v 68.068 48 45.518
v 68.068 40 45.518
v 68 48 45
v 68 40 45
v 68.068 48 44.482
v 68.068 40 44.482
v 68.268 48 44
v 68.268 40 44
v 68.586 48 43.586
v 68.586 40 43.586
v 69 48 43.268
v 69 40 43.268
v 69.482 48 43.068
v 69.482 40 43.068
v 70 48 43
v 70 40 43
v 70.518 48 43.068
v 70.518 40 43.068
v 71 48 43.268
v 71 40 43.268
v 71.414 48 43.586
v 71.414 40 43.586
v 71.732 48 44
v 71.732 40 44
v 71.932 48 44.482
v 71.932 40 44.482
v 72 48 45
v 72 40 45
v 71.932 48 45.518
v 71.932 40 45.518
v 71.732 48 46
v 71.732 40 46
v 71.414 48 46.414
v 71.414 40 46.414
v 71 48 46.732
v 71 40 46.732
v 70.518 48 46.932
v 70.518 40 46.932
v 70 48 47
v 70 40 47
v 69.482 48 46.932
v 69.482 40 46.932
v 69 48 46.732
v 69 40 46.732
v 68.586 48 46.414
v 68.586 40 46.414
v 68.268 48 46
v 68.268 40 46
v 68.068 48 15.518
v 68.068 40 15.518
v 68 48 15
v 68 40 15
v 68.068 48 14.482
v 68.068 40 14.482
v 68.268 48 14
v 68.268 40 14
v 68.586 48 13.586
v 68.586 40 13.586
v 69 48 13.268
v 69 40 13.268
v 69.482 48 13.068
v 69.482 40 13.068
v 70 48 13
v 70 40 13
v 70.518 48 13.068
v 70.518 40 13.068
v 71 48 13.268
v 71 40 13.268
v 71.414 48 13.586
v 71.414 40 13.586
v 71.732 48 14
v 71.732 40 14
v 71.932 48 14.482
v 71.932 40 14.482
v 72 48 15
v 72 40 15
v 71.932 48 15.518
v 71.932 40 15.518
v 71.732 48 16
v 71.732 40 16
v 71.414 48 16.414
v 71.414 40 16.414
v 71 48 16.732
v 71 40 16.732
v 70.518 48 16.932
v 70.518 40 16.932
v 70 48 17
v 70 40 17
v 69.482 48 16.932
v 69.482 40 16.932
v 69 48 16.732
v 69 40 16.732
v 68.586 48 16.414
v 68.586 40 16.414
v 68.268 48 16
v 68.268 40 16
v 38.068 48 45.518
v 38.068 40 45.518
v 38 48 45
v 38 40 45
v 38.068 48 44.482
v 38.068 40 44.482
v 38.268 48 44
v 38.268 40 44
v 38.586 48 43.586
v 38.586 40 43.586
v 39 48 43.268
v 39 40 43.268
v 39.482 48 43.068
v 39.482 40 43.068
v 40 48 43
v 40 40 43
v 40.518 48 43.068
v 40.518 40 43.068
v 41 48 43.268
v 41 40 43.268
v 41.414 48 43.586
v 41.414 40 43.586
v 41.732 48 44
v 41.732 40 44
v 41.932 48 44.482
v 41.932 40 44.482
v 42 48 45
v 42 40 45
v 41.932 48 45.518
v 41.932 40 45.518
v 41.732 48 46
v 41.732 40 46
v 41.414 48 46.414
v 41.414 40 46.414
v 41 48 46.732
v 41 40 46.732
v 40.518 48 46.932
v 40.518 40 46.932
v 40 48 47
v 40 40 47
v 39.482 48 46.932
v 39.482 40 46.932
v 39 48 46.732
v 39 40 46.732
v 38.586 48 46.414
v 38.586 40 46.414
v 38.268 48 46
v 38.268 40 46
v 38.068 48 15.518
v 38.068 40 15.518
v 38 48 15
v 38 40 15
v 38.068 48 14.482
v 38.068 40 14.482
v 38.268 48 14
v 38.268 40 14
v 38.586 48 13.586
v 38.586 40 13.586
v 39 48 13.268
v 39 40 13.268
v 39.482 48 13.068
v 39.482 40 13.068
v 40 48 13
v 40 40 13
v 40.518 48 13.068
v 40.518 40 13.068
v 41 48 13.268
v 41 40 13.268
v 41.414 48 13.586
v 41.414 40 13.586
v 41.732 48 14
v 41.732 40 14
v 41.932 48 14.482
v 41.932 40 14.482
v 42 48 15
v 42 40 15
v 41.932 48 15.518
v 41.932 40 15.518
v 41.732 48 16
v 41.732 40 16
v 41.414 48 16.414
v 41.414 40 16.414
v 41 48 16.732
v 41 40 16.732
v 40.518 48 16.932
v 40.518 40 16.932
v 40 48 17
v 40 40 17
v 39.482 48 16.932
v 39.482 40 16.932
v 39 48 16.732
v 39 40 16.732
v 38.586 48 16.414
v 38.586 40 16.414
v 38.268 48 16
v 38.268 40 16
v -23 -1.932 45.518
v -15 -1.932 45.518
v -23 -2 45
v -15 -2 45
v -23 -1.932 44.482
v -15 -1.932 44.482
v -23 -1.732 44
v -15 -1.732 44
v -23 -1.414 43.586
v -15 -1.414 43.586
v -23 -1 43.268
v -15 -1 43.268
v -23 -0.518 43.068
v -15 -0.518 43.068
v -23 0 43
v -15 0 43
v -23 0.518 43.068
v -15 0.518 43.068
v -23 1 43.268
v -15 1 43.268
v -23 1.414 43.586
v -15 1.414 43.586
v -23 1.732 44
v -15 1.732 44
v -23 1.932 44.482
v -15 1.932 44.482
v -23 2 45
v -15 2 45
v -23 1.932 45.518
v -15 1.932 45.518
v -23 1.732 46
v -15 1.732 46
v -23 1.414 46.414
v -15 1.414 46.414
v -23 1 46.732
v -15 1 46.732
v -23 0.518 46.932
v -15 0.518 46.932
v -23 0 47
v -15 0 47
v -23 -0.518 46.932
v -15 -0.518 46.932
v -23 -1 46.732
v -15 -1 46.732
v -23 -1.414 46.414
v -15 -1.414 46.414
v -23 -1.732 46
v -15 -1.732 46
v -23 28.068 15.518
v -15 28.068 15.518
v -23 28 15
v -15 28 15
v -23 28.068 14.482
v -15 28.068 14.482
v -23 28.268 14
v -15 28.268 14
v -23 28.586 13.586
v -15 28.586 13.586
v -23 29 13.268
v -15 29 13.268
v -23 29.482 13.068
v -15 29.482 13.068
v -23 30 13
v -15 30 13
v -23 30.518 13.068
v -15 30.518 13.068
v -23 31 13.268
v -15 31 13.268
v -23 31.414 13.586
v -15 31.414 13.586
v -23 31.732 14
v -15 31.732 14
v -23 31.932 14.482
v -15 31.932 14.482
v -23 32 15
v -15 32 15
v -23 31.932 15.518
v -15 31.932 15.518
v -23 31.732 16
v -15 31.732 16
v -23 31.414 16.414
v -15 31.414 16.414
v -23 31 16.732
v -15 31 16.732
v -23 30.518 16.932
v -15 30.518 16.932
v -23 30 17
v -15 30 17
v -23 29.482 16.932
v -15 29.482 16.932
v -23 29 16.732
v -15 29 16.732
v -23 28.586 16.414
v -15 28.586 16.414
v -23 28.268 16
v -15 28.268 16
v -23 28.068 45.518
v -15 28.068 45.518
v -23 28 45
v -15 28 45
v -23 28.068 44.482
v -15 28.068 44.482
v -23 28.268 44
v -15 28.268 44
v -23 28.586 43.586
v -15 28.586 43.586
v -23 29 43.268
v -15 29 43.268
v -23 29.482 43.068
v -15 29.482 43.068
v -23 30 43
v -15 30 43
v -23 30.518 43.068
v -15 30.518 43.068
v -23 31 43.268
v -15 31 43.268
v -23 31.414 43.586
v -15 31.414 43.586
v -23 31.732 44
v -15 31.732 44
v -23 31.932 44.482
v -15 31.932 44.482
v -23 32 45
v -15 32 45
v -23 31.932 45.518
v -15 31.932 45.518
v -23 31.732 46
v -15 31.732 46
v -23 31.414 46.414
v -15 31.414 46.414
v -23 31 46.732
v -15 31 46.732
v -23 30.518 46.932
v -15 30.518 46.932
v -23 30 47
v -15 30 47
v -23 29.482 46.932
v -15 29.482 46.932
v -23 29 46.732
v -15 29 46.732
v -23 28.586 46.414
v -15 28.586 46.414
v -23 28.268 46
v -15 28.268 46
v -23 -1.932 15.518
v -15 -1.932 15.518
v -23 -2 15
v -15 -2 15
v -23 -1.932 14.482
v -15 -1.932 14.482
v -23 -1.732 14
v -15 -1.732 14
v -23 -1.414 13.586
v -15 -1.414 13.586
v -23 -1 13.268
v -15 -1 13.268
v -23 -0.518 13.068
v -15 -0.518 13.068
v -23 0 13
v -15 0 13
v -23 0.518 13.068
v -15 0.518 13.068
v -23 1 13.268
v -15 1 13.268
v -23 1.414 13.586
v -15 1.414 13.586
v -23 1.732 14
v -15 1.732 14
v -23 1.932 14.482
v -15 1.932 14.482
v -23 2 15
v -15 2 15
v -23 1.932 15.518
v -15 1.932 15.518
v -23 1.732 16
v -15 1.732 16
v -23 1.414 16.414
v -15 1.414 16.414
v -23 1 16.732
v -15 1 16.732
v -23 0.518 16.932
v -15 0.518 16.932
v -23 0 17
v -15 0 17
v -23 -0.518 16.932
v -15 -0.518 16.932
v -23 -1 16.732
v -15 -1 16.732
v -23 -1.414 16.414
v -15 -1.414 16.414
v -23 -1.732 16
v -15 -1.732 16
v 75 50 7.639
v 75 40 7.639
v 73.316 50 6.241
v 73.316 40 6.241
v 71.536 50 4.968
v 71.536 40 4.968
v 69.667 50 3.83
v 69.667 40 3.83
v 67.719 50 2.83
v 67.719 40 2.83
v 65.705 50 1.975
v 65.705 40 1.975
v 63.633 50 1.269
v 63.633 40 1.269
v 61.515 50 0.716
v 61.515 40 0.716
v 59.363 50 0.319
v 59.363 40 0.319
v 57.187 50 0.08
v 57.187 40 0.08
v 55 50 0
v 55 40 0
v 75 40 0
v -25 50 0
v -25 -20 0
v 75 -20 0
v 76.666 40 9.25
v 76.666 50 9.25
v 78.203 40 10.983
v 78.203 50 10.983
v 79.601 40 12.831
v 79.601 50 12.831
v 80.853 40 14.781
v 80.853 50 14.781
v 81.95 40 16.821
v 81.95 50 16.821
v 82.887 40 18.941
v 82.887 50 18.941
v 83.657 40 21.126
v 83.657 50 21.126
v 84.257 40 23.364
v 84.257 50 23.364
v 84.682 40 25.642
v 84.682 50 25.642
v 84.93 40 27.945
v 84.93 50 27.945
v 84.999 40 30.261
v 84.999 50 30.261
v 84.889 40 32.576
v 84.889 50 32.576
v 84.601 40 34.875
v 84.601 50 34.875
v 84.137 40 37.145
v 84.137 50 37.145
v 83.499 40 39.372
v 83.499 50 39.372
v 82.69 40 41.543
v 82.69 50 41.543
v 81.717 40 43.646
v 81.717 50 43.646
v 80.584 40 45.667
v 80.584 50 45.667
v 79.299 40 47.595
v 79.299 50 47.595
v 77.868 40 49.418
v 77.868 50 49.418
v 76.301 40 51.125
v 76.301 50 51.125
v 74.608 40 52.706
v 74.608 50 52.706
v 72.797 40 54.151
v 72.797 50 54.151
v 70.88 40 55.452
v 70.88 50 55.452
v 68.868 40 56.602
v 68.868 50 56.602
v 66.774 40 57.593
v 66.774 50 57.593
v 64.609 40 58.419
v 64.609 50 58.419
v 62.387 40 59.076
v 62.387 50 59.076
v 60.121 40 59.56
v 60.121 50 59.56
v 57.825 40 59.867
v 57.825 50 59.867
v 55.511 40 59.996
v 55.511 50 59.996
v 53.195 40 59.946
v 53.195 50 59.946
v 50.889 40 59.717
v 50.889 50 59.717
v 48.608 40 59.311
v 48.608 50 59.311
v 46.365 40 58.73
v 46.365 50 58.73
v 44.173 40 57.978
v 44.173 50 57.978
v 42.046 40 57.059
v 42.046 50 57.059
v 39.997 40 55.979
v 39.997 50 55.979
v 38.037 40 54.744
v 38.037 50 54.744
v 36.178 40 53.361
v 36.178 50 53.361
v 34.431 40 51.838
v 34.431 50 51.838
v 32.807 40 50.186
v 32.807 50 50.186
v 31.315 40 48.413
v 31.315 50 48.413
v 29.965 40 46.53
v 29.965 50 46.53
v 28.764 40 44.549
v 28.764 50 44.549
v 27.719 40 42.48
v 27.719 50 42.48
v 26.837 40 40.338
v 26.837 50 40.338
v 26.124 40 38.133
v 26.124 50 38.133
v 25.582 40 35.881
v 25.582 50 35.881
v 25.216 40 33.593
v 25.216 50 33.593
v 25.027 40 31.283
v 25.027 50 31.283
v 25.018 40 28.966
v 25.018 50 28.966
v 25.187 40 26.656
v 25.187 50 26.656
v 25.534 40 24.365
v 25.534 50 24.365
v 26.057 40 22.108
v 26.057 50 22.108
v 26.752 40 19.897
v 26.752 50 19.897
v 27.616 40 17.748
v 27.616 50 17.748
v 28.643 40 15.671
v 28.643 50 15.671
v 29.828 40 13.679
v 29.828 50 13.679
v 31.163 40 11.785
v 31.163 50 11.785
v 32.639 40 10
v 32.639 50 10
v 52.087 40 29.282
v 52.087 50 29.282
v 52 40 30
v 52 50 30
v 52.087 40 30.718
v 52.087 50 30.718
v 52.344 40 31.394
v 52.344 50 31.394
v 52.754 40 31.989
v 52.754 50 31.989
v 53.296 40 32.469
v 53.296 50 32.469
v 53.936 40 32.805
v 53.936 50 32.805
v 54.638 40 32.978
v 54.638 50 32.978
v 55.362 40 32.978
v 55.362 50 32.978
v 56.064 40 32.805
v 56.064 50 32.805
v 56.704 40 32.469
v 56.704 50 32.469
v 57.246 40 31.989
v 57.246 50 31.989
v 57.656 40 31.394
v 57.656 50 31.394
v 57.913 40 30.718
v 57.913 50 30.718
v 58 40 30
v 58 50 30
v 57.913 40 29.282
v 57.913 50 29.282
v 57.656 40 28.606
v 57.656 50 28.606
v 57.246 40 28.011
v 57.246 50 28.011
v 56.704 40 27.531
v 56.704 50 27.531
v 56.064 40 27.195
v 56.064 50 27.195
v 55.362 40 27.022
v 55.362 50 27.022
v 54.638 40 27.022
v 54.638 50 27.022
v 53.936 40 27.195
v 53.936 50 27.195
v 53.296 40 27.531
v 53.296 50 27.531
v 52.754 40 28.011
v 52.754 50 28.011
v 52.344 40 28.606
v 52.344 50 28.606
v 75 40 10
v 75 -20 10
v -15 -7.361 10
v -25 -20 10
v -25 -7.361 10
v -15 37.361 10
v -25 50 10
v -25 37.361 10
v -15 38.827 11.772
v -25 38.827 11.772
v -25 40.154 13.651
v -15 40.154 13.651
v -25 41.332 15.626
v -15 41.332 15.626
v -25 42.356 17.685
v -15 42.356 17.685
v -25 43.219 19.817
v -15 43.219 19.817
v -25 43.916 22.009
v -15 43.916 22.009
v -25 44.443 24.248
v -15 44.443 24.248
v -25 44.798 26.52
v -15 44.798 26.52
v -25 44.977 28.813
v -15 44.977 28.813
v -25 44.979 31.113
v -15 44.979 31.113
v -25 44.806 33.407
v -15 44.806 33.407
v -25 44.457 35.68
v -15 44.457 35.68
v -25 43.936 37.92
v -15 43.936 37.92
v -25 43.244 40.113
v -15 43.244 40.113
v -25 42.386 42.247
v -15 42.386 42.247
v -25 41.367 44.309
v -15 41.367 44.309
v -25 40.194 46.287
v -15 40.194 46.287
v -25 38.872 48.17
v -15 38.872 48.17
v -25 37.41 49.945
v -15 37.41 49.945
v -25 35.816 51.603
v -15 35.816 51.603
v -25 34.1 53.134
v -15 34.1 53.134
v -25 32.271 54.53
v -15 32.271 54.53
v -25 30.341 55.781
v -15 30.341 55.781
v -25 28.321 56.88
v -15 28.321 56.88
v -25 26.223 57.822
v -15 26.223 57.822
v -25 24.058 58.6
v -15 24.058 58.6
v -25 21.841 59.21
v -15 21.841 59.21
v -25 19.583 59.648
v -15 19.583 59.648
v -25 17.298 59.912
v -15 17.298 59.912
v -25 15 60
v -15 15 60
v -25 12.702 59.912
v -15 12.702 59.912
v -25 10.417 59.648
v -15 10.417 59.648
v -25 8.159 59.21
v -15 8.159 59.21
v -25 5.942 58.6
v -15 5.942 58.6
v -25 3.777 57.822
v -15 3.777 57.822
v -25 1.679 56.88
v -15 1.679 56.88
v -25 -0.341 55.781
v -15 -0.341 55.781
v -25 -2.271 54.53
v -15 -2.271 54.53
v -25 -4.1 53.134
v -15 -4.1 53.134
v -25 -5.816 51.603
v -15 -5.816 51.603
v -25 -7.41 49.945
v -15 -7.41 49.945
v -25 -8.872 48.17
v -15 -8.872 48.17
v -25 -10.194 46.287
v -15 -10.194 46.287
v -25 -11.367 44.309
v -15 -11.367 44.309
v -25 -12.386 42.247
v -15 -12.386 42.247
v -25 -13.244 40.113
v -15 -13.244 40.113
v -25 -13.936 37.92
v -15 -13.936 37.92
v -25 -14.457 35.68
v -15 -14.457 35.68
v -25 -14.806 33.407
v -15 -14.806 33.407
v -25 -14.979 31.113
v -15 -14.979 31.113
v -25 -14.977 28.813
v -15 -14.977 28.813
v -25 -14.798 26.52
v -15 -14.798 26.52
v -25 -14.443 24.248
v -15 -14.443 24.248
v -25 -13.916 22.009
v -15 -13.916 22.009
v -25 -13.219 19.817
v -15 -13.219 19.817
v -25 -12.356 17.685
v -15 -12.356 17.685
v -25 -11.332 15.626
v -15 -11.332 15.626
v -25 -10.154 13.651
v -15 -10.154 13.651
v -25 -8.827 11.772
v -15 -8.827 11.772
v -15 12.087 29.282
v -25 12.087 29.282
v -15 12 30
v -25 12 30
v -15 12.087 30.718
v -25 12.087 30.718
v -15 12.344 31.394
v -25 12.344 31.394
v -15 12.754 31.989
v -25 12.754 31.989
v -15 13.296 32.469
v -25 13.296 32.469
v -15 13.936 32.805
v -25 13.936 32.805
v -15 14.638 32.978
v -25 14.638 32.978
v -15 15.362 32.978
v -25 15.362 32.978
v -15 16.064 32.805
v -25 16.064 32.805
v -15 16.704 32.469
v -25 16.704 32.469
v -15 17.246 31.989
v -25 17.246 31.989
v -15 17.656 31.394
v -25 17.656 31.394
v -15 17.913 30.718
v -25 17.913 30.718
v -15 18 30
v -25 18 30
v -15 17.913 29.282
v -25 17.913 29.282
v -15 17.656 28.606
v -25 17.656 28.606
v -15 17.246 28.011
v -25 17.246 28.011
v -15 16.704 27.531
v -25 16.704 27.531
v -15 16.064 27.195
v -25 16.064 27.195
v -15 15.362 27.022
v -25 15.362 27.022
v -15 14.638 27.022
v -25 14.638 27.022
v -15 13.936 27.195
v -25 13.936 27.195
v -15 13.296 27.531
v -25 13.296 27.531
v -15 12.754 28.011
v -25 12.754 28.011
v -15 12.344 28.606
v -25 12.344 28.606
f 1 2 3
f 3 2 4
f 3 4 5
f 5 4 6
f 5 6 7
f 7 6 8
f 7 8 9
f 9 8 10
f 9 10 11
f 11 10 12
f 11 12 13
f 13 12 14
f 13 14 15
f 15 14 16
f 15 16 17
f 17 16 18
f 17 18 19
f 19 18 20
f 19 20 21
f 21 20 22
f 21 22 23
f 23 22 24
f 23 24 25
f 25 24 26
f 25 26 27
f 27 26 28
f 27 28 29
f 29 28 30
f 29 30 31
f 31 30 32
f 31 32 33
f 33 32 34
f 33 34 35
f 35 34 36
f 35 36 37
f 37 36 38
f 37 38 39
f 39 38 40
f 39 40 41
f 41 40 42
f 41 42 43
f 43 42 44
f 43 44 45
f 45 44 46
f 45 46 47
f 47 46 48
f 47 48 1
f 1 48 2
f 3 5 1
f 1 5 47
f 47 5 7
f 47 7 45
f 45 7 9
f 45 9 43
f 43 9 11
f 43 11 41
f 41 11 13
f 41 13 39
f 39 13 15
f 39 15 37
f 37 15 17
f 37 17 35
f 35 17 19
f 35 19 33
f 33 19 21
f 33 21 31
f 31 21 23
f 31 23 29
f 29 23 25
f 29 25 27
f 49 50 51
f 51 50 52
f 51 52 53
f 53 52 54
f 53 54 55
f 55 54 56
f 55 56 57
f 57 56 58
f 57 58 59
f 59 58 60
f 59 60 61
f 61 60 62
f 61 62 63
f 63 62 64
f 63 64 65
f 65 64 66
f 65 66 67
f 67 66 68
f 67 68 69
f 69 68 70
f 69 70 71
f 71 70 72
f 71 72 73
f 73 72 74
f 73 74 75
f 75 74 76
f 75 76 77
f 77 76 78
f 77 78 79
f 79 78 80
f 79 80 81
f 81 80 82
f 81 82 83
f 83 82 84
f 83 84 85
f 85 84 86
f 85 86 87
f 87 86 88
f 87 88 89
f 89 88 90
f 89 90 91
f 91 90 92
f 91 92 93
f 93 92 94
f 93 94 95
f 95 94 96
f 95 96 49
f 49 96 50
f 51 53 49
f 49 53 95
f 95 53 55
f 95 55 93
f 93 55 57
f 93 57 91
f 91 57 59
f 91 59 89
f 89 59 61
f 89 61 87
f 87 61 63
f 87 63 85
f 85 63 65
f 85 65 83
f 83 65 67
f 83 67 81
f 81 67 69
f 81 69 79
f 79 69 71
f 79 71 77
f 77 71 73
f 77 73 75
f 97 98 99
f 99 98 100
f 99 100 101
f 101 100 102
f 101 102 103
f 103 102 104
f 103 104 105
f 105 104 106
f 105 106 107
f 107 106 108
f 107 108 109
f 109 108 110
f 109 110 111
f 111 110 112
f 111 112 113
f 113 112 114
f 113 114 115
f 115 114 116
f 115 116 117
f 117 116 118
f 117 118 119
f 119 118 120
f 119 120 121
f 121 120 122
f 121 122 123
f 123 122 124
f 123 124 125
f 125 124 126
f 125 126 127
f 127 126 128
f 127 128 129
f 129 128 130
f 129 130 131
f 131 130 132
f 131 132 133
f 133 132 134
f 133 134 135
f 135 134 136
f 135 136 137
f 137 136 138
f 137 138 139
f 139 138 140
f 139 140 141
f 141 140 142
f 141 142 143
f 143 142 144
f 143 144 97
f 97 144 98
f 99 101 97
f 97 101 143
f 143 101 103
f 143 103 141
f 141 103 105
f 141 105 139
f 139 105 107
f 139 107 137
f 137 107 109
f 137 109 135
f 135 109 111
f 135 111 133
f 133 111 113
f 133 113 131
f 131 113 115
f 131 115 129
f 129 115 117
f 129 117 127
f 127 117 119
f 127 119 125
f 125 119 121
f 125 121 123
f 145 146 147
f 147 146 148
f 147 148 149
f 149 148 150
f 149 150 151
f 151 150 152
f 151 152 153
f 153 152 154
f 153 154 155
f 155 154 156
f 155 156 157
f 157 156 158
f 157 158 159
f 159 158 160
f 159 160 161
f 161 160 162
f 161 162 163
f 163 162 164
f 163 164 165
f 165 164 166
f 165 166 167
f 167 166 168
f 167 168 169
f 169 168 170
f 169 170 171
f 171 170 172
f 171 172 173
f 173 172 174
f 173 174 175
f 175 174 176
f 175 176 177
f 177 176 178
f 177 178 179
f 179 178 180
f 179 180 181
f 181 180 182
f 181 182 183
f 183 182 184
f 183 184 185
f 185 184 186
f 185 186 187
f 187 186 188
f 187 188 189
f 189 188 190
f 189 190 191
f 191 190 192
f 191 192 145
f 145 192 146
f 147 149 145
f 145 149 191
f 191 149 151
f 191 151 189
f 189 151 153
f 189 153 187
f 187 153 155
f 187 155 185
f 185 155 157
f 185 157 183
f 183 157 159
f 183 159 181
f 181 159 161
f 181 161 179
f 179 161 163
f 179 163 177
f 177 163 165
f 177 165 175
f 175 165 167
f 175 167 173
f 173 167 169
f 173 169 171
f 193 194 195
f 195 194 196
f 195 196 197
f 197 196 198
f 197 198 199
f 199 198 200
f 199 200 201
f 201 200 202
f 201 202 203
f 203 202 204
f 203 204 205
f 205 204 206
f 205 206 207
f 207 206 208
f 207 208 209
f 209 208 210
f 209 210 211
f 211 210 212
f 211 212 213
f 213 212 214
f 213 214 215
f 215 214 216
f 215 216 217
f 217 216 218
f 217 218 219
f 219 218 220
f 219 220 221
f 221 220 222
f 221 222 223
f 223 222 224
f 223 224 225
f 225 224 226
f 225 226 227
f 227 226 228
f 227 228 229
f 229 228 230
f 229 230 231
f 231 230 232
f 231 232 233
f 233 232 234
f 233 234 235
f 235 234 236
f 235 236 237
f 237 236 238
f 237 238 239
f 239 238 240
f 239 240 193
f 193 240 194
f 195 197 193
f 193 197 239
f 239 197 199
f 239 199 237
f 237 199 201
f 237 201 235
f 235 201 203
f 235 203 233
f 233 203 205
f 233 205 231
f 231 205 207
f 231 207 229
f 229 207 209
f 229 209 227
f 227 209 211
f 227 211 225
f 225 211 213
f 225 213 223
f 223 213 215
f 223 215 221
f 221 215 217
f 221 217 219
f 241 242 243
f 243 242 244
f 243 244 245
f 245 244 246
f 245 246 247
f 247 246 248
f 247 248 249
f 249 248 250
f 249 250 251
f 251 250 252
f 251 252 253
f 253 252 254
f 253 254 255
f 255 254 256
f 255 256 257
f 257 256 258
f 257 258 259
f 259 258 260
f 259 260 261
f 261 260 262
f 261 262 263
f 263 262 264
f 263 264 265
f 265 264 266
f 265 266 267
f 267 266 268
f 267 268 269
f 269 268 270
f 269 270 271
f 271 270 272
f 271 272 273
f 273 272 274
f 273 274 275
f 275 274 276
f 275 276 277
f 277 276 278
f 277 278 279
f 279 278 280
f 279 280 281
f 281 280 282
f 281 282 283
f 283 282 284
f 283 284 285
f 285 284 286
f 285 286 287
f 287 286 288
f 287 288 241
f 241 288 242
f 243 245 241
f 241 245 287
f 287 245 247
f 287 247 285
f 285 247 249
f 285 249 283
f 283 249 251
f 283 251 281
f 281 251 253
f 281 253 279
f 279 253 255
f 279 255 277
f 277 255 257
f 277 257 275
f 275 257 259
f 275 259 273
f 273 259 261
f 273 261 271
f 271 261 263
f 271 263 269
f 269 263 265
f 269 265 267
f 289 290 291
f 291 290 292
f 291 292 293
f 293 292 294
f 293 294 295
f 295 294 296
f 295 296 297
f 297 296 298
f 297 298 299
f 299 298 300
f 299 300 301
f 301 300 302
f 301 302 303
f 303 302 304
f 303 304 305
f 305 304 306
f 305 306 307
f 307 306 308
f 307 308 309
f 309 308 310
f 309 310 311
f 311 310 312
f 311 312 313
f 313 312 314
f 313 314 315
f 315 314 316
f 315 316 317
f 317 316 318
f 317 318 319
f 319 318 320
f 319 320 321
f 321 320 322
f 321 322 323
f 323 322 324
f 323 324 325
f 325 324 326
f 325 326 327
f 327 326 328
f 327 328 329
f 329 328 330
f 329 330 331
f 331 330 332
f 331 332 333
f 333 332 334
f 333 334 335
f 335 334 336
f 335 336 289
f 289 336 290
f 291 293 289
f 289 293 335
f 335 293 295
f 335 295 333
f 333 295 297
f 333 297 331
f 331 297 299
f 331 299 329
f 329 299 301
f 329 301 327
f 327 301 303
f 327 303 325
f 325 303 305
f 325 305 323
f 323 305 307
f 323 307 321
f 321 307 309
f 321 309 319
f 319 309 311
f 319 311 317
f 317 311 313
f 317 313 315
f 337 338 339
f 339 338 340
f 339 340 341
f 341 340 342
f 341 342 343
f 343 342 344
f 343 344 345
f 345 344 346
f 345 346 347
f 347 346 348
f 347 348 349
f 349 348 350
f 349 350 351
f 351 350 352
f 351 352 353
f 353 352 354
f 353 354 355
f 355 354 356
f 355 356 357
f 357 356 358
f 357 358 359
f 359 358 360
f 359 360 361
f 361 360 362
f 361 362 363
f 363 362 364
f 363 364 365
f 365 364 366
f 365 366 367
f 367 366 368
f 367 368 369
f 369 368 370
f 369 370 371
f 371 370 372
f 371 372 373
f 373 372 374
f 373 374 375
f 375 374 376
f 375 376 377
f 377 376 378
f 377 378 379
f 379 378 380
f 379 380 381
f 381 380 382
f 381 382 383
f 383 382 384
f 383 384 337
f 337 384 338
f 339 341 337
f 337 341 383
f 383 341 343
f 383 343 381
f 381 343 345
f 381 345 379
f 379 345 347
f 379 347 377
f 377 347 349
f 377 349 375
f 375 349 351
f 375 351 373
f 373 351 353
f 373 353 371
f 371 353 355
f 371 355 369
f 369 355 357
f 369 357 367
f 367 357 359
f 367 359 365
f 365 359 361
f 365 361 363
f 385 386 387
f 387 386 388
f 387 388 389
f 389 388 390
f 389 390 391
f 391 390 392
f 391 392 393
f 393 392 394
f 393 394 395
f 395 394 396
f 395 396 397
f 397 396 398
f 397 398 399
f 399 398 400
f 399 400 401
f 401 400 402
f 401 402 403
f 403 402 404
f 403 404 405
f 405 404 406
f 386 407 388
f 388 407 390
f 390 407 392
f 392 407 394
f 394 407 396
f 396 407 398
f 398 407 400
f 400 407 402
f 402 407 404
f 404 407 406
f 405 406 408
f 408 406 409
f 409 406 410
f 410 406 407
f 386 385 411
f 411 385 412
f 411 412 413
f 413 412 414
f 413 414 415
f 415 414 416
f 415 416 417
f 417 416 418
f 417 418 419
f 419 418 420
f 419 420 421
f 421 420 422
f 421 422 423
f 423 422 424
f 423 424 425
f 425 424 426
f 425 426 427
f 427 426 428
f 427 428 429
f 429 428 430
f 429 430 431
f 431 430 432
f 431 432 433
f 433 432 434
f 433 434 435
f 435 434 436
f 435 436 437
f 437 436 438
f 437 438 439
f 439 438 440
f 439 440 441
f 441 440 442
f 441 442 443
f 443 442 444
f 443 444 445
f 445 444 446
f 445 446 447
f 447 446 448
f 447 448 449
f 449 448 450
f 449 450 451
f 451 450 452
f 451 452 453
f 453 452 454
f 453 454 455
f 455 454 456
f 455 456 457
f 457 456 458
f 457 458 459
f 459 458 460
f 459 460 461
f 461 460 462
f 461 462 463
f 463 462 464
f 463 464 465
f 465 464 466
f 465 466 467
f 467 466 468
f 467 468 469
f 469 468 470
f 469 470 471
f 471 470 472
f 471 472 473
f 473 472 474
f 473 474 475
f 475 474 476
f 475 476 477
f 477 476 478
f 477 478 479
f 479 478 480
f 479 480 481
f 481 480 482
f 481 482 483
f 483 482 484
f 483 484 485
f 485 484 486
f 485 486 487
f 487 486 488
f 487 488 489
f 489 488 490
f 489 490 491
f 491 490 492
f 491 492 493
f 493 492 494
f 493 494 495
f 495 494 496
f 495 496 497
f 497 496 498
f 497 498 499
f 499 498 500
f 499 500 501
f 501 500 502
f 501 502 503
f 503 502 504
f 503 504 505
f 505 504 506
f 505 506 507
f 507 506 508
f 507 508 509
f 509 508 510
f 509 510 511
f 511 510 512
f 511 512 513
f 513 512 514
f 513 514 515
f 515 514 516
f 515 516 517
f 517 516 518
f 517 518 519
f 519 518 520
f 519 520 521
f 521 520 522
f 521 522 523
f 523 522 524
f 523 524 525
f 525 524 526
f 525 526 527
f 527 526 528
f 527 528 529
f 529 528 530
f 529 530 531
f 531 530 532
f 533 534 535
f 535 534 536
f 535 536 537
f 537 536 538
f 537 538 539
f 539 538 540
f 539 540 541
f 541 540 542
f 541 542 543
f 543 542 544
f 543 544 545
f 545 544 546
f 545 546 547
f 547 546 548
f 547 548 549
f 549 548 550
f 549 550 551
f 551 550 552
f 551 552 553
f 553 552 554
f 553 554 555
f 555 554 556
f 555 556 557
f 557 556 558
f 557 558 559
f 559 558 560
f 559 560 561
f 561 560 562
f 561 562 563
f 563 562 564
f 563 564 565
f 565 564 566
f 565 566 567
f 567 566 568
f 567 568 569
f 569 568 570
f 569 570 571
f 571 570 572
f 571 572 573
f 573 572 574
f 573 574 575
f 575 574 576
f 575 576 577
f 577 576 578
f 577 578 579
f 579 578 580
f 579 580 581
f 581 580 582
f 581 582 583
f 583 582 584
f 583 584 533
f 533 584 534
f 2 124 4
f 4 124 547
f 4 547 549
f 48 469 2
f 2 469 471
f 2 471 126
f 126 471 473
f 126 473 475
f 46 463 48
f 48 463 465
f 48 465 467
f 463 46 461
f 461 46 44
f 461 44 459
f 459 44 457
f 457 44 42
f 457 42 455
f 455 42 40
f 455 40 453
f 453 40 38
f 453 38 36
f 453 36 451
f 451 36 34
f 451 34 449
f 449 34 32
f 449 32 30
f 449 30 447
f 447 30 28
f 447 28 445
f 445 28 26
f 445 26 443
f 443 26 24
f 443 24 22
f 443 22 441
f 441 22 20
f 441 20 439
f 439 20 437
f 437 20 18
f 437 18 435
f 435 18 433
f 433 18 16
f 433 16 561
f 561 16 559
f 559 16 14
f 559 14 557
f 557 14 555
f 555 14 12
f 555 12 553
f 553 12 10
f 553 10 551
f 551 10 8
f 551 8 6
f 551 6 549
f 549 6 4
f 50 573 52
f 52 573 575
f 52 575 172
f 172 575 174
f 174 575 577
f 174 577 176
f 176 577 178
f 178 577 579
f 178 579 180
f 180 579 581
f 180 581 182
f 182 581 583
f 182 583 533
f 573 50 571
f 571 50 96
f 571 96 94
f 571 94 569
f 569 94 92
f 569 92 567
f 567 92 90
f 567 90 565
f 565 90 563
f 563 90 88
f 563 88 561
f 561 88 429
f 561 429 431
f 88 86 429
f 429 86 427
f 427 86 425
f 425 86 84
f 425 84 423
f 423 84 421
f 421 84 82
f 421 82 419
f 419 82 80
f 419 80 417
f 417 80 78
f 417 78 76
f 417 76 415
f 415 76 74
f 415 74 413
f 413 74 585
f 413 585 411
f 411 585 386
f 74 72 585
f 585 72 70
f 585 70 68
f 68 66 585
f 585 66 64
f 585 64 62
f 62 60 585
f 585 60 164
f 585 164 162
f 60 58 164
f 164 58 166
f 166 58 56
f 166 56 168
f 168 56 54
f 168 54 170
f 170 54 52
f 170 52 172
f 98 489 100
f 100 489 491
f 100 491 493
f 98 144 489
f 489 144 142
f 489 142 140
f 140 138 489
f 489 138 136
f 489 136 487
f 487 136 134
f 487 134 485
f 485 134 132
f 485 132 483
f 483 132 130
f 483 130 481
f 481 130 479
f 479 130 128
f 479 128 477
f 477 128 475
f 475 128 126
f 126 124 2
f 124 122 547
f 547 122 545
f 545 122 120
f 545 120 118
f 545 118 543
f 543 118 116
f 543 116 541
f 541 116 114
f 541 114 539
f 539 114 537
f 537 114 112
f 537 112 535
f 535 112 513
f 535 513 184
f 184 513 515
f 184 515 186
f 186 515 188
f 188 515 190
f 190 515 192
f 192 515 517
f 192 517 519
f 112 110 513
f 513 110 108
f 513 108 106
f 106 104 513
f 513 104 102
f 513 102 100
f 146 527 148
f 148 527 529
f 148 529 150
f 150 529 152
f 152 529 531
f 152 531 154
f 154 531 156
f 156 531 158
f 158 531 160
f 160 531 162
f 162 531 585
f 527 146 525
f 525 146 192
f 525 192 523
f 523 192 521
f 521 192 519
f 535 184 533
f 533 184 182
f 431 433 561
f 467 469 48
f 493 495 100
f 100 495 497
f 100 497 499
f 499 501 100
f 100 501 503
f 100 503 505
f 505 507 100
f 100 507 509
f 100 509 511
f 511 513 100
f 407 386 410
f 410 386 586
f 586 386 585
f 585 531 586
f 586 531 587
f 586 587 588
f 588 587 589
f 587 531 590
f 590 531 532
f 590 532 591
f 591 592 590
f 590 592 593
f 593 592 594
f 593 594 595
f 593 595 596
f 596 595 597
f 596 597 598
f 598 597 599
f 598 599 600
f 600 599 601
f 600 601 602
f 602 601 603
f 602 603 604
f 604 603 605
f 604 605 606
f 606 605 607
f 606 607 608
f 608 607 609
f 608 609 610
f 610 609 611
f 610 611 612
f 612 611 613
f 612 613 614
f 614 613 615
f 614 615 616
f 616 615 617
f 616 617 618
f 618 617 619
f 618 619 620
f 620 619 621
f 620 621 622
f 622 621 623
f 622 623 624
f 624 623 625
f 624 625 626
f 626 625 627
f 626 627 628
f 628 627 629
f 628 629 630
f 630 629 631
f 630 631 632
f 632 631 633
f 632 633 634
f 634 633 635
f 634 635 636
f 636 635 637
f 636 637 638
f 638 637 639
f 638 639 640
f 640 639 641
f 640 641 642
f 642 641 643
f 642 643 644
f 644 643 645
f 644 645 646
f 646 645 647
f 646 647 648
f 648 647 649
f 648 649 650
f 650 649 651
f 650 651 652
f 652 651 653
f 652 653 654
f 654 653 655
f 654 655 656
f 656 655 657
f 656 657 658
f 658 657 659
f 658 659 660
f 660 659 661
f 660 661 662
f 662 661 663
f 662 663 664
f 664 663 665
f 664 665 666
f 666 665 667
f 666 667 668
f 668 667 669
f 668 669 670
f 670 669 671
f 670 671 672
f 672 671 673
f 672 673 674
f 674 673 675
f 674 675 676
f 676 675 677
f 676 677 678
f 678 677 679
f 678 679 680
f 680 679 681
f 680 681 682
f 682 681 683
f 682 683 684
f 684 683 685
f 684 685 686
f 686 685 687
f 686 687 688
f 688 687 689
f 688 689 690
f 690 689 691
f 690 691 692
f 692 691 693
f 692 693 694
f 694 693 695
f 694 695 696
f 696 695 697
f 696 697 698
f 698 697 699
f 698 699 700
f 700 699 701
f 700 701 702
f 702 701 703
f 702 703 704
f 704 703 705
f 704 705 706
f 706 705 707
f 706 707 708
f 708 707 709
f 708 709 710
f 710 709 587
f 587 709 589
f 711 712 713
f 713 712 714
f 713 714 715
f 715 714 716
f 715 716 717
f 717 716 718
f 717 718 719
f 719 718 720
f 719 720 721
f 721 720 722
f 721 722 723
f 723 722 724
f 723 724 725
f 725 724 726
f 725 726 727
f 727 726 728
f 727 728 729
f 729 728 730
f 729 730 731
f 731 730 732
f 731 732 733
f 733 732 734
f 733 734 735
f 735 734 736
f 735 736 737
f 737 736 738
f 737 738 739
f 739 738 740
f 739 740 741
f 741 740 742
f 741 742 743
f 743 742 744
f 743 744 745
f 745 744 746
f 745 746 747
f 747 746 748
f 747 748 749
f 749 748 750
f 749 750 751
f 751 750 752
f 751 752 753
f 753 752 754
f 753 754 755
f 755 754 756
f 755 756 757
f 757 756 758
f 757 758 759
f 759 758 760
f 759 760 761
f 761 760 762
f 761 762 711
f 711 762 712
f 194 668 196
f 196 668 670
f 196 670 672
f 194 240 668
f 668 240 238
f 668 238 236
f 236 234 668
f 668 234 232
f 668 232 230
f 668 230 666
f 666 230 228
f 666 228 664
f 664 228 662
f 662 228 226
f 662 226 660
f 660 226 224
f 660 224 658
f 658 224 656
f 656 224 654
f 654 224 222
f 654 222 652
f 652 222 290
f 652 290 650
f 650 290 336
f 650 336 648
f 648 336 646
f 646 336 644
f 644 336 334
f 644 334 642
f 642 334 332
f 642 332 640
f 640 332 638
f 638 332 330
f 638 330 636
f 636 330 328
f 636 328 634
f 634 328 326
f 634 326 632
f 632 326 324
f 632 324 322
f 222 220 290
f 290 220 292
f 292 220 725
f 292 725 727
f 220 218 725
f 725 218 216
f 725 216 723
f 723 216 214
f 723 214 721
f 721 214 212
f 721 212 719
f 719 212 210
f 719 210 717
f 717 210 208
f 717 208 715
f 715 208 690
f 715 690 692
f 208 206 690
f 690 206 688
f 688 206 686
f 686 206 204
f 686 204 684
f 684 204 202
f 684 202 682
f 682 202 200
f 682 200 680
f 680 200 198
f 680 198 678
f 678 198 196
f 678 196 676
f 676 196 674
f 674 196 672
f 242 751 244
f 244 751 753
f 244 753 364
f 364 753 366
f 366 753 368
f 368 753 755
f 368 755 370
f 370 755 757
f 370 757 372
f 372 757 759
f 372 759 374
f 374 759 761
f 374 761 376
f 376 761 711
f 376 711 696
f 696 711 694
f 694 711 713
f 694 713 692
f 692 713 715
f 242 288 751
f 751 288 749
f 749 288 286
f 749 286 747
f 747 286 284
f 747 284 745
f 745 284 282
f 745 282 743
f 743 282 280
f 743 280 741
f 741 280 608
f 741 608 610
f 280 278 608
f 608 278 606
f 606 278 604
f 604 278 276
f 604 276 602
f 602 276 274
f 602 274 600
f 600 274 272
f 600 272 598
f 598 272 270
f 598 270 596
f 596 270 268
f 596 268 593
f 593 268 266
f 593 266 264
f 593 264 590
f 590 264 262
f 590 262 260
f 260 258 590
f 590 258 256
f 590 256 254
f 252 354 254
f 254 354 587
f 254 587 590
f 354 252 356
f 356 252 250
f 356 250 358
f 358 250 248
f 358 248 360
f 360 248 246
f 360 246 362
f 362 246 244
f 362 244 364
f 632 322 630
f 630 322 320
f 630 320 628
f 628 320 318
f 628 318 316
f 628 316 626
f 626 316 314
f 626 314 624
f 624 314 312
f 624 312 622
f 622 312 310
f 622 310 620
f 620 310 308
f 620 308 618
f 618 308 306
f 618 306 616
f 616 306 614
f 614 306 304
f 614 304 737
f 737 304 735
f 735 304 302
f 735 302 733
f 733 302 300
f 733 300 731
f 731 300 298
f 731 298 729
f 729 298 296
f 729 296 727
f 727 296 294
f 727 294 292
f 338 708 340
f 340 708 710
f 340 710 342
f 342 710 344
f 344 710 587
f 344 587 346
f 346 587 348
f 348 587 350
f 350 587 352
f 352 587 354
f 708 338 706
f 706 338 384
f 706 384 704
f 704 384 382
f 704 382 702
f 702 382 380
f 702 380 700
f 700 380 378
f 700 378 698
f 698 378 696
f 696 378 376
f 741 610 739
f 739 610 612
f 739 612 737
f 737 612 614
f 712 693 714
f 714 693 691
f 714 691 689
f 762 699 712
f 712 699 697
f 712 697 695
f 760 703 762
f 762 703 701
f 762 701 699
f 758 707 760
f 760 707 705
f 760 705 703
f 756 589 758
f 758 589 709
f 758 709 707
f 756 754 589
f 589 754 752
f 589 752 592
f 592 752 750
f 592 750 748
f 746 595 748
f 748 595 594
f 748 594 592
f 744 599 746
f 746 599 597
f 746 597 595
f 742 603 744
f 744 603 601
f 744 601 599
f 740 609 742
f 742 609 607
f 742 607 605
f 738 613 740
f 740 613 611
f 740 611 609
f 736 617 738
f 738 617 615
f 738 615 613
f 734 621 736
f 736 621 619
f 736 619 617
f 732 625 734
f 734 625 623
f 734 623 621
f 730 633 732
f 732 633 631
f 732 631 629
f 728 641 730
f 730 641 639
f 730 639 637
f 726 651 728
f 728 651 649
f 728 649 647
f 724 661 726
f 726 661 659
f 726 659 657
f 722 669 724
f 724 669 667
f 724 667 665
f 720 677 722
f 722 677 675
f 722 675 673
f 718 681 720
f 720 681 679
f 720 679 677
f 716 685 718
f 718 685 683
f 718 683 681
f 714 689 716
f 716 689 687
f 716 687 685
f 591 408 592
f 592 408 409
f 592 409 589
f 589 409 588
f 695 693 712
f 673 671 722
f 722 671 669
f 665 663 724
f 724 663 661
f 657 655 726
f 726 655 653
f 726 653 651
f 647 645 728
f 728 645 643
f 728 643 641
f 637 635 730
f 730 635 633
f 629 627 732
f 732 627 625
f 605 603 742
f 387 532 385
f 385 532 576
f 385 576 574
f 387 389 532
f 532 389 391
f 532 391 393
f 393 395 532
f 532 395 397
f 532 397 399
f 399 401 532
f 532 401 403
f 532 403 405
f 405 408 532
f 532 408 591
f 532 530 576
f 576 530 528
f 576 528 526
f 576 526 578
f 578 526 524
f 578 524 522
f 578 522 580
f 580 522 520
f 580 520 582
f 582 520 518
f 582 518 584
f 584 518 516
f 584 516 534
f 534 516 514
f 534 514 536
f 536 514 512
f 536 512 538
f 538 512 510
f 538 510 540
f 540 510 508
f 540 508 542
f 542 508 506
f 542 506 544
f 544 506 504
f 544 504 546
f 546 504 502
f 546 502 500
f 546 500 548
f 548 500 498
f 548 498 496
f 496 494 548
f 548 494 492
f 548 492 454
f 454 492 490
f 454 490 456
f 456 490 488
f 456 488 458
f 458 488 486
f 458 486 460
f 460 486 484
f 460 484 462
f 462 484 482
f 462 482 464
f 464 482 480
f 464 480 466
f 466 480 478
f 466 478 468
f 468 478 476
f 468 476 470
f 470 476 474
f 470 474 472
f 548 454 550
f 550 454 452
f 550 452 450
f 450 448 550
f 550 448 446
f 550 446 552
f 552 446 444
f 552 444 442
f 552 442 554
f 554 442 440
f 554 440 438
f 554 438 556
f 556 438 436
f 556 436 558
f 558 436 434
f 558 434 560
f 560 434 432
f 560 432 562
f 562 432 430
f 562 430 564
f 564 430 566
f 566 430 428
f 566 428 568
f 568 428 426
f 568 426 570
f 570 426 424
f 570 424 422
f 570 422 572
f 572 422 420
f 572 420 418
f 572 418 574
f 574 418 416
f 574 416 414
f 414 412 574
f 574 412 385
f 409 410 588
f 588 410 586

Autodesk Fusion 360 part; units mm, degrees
sketch "Sketch1" plane through (0, 0, 0) normal (0, 0, 1) x (1, 0, 0)
  line L0 (-25, 50) -> (75, 50)
  line L1 (75, 50) -> (75, -20)
  line L2 (75, -20) -> (-25, -20)
  line L3 (-25, -20) -> (-25, 50)
  dimension "d1" = 100
  dimension "d2" = 70
extrude "Extrude1" add sketch "Sketch1" along normal blind 10
sketch "Sketch2" plane through (0, 0, 0) normal (1, 0, 0) x (0, 1, 0)
  line L0 (-20, 50) -> (-20, -25) construction
  line L1 (50, 50) -> (50, -25) construction
  line L2 (-25, 0) -> (55, 0) construction
  line L3 (15, 50) -> (15, -25) construction
  line L4 (-25, 30) -> (55, 30) construction
  circle A0 centre (15, 30) radius 3
  circle A1 centre (15, 30) radius 30
  circle A2 centre (0, 15) radius 2
  circle A3 centre (15, 30) radius 3
  circle A4 centre (0, 45) radius 2
  circle A5 centre (30, 45) radius 2
  circle A6 centre (15, 30) radius 3
  circle A7 centre (30, 15) radius 2
  circle A8 centre (15, 30) radius 3
  line L5 (59.9207, 15) -> (-20, 15) construction
  line L6 (30, 60) -> (30, -2) construction
  line L7 (0, 60) -> (0, -2) construction
  point P0 (0, 45)
  dimension "d5" = 35
  dimension "d6" = 30
  dimension "d7" = 6
  dimension "d8" = 60
  dimension "d9" = 4
  dimension "d10" = 4
  dimension "d18" = 15
  dimension "d19" = 15
extrude "Extrude2" add sketch "Sketch2" along normal blind 10 from surface at -25 contours A1 | A2 | A4 | A5 | A7
sketch "Sketch3" plane through (0, 0, 0) normal (0, 1, 0) x (1, 0, 0)
  line L0 (-30, 0) -> (80, 0) construction
  line L1 (25, -65) -> (25, 5) construction
  line L2 (-30, -30) -> (80, -30) construction
  line L3 (-25, -65) -> (-25, 5) construction
  line L4 (-35, -15) -> (111.1834, -15) construction
  line L5 (55, -65) -> (55, 5) construction
  line L6 (70, -70) -> (70, 15) construction
  circle A0 centre (55, -30) radius 30
  circle A1 centre (40, -45) radius 2
  circle A2 centre (55, -30) radius 3
  circle A3 centre (70, -45) radius 2
  circle A4 centre (40, -15) radius 2
  circle A5 centre (70, -15) radius 2
  point P0 (70, -15)
  dimension "d14" = 50
  dimension "d15" = 30
  dimension "d20" = 15
  dimension "d21" = 15
  dimension "d53" = 4
extrude "Extrude3" add sketch "Sketch3" against normal blind 10 from surface at 50 contours A0 | A1 | A3 | A4 | A5
ref_plane "WorkPlane1" through (0, -30, 0) normal (0, 1, 0) x (0, 0, 1)
sketch "Sketch4" plane through (0, -30, 0) normal (0, 1, 0) x (1, 0, 0)
  line L0 (85, 0) -> (-35, 0) construction
  line L1 (-35, -7.64) -> (92.4851, -7.64) construction
  line L2 (55, -30) -> (55, 12) construction
  line L3 (25, -75) -> (25, 12.7577) construction
  line L4 (75.0008, -7.64) -> (75.0008, 2)
  circle A0 centre (55, -30) radius 30
  line L5 (88, 0) -> (48, 0)
extrude "Extrude6" cut sketch "Sketch4" against normal blind 10 from surface at 80 contours L4 A0 L5
extrude "Extrude8" cut sketch "Sketch2" against normal blind 8 from surface at -15 contours A2 | A4 | A5 | A7
extrude "Extrude9" cut sketch "Sketch3" along normal blind 8 from surface at 40 contours A1 | A3 | A4 | A5
